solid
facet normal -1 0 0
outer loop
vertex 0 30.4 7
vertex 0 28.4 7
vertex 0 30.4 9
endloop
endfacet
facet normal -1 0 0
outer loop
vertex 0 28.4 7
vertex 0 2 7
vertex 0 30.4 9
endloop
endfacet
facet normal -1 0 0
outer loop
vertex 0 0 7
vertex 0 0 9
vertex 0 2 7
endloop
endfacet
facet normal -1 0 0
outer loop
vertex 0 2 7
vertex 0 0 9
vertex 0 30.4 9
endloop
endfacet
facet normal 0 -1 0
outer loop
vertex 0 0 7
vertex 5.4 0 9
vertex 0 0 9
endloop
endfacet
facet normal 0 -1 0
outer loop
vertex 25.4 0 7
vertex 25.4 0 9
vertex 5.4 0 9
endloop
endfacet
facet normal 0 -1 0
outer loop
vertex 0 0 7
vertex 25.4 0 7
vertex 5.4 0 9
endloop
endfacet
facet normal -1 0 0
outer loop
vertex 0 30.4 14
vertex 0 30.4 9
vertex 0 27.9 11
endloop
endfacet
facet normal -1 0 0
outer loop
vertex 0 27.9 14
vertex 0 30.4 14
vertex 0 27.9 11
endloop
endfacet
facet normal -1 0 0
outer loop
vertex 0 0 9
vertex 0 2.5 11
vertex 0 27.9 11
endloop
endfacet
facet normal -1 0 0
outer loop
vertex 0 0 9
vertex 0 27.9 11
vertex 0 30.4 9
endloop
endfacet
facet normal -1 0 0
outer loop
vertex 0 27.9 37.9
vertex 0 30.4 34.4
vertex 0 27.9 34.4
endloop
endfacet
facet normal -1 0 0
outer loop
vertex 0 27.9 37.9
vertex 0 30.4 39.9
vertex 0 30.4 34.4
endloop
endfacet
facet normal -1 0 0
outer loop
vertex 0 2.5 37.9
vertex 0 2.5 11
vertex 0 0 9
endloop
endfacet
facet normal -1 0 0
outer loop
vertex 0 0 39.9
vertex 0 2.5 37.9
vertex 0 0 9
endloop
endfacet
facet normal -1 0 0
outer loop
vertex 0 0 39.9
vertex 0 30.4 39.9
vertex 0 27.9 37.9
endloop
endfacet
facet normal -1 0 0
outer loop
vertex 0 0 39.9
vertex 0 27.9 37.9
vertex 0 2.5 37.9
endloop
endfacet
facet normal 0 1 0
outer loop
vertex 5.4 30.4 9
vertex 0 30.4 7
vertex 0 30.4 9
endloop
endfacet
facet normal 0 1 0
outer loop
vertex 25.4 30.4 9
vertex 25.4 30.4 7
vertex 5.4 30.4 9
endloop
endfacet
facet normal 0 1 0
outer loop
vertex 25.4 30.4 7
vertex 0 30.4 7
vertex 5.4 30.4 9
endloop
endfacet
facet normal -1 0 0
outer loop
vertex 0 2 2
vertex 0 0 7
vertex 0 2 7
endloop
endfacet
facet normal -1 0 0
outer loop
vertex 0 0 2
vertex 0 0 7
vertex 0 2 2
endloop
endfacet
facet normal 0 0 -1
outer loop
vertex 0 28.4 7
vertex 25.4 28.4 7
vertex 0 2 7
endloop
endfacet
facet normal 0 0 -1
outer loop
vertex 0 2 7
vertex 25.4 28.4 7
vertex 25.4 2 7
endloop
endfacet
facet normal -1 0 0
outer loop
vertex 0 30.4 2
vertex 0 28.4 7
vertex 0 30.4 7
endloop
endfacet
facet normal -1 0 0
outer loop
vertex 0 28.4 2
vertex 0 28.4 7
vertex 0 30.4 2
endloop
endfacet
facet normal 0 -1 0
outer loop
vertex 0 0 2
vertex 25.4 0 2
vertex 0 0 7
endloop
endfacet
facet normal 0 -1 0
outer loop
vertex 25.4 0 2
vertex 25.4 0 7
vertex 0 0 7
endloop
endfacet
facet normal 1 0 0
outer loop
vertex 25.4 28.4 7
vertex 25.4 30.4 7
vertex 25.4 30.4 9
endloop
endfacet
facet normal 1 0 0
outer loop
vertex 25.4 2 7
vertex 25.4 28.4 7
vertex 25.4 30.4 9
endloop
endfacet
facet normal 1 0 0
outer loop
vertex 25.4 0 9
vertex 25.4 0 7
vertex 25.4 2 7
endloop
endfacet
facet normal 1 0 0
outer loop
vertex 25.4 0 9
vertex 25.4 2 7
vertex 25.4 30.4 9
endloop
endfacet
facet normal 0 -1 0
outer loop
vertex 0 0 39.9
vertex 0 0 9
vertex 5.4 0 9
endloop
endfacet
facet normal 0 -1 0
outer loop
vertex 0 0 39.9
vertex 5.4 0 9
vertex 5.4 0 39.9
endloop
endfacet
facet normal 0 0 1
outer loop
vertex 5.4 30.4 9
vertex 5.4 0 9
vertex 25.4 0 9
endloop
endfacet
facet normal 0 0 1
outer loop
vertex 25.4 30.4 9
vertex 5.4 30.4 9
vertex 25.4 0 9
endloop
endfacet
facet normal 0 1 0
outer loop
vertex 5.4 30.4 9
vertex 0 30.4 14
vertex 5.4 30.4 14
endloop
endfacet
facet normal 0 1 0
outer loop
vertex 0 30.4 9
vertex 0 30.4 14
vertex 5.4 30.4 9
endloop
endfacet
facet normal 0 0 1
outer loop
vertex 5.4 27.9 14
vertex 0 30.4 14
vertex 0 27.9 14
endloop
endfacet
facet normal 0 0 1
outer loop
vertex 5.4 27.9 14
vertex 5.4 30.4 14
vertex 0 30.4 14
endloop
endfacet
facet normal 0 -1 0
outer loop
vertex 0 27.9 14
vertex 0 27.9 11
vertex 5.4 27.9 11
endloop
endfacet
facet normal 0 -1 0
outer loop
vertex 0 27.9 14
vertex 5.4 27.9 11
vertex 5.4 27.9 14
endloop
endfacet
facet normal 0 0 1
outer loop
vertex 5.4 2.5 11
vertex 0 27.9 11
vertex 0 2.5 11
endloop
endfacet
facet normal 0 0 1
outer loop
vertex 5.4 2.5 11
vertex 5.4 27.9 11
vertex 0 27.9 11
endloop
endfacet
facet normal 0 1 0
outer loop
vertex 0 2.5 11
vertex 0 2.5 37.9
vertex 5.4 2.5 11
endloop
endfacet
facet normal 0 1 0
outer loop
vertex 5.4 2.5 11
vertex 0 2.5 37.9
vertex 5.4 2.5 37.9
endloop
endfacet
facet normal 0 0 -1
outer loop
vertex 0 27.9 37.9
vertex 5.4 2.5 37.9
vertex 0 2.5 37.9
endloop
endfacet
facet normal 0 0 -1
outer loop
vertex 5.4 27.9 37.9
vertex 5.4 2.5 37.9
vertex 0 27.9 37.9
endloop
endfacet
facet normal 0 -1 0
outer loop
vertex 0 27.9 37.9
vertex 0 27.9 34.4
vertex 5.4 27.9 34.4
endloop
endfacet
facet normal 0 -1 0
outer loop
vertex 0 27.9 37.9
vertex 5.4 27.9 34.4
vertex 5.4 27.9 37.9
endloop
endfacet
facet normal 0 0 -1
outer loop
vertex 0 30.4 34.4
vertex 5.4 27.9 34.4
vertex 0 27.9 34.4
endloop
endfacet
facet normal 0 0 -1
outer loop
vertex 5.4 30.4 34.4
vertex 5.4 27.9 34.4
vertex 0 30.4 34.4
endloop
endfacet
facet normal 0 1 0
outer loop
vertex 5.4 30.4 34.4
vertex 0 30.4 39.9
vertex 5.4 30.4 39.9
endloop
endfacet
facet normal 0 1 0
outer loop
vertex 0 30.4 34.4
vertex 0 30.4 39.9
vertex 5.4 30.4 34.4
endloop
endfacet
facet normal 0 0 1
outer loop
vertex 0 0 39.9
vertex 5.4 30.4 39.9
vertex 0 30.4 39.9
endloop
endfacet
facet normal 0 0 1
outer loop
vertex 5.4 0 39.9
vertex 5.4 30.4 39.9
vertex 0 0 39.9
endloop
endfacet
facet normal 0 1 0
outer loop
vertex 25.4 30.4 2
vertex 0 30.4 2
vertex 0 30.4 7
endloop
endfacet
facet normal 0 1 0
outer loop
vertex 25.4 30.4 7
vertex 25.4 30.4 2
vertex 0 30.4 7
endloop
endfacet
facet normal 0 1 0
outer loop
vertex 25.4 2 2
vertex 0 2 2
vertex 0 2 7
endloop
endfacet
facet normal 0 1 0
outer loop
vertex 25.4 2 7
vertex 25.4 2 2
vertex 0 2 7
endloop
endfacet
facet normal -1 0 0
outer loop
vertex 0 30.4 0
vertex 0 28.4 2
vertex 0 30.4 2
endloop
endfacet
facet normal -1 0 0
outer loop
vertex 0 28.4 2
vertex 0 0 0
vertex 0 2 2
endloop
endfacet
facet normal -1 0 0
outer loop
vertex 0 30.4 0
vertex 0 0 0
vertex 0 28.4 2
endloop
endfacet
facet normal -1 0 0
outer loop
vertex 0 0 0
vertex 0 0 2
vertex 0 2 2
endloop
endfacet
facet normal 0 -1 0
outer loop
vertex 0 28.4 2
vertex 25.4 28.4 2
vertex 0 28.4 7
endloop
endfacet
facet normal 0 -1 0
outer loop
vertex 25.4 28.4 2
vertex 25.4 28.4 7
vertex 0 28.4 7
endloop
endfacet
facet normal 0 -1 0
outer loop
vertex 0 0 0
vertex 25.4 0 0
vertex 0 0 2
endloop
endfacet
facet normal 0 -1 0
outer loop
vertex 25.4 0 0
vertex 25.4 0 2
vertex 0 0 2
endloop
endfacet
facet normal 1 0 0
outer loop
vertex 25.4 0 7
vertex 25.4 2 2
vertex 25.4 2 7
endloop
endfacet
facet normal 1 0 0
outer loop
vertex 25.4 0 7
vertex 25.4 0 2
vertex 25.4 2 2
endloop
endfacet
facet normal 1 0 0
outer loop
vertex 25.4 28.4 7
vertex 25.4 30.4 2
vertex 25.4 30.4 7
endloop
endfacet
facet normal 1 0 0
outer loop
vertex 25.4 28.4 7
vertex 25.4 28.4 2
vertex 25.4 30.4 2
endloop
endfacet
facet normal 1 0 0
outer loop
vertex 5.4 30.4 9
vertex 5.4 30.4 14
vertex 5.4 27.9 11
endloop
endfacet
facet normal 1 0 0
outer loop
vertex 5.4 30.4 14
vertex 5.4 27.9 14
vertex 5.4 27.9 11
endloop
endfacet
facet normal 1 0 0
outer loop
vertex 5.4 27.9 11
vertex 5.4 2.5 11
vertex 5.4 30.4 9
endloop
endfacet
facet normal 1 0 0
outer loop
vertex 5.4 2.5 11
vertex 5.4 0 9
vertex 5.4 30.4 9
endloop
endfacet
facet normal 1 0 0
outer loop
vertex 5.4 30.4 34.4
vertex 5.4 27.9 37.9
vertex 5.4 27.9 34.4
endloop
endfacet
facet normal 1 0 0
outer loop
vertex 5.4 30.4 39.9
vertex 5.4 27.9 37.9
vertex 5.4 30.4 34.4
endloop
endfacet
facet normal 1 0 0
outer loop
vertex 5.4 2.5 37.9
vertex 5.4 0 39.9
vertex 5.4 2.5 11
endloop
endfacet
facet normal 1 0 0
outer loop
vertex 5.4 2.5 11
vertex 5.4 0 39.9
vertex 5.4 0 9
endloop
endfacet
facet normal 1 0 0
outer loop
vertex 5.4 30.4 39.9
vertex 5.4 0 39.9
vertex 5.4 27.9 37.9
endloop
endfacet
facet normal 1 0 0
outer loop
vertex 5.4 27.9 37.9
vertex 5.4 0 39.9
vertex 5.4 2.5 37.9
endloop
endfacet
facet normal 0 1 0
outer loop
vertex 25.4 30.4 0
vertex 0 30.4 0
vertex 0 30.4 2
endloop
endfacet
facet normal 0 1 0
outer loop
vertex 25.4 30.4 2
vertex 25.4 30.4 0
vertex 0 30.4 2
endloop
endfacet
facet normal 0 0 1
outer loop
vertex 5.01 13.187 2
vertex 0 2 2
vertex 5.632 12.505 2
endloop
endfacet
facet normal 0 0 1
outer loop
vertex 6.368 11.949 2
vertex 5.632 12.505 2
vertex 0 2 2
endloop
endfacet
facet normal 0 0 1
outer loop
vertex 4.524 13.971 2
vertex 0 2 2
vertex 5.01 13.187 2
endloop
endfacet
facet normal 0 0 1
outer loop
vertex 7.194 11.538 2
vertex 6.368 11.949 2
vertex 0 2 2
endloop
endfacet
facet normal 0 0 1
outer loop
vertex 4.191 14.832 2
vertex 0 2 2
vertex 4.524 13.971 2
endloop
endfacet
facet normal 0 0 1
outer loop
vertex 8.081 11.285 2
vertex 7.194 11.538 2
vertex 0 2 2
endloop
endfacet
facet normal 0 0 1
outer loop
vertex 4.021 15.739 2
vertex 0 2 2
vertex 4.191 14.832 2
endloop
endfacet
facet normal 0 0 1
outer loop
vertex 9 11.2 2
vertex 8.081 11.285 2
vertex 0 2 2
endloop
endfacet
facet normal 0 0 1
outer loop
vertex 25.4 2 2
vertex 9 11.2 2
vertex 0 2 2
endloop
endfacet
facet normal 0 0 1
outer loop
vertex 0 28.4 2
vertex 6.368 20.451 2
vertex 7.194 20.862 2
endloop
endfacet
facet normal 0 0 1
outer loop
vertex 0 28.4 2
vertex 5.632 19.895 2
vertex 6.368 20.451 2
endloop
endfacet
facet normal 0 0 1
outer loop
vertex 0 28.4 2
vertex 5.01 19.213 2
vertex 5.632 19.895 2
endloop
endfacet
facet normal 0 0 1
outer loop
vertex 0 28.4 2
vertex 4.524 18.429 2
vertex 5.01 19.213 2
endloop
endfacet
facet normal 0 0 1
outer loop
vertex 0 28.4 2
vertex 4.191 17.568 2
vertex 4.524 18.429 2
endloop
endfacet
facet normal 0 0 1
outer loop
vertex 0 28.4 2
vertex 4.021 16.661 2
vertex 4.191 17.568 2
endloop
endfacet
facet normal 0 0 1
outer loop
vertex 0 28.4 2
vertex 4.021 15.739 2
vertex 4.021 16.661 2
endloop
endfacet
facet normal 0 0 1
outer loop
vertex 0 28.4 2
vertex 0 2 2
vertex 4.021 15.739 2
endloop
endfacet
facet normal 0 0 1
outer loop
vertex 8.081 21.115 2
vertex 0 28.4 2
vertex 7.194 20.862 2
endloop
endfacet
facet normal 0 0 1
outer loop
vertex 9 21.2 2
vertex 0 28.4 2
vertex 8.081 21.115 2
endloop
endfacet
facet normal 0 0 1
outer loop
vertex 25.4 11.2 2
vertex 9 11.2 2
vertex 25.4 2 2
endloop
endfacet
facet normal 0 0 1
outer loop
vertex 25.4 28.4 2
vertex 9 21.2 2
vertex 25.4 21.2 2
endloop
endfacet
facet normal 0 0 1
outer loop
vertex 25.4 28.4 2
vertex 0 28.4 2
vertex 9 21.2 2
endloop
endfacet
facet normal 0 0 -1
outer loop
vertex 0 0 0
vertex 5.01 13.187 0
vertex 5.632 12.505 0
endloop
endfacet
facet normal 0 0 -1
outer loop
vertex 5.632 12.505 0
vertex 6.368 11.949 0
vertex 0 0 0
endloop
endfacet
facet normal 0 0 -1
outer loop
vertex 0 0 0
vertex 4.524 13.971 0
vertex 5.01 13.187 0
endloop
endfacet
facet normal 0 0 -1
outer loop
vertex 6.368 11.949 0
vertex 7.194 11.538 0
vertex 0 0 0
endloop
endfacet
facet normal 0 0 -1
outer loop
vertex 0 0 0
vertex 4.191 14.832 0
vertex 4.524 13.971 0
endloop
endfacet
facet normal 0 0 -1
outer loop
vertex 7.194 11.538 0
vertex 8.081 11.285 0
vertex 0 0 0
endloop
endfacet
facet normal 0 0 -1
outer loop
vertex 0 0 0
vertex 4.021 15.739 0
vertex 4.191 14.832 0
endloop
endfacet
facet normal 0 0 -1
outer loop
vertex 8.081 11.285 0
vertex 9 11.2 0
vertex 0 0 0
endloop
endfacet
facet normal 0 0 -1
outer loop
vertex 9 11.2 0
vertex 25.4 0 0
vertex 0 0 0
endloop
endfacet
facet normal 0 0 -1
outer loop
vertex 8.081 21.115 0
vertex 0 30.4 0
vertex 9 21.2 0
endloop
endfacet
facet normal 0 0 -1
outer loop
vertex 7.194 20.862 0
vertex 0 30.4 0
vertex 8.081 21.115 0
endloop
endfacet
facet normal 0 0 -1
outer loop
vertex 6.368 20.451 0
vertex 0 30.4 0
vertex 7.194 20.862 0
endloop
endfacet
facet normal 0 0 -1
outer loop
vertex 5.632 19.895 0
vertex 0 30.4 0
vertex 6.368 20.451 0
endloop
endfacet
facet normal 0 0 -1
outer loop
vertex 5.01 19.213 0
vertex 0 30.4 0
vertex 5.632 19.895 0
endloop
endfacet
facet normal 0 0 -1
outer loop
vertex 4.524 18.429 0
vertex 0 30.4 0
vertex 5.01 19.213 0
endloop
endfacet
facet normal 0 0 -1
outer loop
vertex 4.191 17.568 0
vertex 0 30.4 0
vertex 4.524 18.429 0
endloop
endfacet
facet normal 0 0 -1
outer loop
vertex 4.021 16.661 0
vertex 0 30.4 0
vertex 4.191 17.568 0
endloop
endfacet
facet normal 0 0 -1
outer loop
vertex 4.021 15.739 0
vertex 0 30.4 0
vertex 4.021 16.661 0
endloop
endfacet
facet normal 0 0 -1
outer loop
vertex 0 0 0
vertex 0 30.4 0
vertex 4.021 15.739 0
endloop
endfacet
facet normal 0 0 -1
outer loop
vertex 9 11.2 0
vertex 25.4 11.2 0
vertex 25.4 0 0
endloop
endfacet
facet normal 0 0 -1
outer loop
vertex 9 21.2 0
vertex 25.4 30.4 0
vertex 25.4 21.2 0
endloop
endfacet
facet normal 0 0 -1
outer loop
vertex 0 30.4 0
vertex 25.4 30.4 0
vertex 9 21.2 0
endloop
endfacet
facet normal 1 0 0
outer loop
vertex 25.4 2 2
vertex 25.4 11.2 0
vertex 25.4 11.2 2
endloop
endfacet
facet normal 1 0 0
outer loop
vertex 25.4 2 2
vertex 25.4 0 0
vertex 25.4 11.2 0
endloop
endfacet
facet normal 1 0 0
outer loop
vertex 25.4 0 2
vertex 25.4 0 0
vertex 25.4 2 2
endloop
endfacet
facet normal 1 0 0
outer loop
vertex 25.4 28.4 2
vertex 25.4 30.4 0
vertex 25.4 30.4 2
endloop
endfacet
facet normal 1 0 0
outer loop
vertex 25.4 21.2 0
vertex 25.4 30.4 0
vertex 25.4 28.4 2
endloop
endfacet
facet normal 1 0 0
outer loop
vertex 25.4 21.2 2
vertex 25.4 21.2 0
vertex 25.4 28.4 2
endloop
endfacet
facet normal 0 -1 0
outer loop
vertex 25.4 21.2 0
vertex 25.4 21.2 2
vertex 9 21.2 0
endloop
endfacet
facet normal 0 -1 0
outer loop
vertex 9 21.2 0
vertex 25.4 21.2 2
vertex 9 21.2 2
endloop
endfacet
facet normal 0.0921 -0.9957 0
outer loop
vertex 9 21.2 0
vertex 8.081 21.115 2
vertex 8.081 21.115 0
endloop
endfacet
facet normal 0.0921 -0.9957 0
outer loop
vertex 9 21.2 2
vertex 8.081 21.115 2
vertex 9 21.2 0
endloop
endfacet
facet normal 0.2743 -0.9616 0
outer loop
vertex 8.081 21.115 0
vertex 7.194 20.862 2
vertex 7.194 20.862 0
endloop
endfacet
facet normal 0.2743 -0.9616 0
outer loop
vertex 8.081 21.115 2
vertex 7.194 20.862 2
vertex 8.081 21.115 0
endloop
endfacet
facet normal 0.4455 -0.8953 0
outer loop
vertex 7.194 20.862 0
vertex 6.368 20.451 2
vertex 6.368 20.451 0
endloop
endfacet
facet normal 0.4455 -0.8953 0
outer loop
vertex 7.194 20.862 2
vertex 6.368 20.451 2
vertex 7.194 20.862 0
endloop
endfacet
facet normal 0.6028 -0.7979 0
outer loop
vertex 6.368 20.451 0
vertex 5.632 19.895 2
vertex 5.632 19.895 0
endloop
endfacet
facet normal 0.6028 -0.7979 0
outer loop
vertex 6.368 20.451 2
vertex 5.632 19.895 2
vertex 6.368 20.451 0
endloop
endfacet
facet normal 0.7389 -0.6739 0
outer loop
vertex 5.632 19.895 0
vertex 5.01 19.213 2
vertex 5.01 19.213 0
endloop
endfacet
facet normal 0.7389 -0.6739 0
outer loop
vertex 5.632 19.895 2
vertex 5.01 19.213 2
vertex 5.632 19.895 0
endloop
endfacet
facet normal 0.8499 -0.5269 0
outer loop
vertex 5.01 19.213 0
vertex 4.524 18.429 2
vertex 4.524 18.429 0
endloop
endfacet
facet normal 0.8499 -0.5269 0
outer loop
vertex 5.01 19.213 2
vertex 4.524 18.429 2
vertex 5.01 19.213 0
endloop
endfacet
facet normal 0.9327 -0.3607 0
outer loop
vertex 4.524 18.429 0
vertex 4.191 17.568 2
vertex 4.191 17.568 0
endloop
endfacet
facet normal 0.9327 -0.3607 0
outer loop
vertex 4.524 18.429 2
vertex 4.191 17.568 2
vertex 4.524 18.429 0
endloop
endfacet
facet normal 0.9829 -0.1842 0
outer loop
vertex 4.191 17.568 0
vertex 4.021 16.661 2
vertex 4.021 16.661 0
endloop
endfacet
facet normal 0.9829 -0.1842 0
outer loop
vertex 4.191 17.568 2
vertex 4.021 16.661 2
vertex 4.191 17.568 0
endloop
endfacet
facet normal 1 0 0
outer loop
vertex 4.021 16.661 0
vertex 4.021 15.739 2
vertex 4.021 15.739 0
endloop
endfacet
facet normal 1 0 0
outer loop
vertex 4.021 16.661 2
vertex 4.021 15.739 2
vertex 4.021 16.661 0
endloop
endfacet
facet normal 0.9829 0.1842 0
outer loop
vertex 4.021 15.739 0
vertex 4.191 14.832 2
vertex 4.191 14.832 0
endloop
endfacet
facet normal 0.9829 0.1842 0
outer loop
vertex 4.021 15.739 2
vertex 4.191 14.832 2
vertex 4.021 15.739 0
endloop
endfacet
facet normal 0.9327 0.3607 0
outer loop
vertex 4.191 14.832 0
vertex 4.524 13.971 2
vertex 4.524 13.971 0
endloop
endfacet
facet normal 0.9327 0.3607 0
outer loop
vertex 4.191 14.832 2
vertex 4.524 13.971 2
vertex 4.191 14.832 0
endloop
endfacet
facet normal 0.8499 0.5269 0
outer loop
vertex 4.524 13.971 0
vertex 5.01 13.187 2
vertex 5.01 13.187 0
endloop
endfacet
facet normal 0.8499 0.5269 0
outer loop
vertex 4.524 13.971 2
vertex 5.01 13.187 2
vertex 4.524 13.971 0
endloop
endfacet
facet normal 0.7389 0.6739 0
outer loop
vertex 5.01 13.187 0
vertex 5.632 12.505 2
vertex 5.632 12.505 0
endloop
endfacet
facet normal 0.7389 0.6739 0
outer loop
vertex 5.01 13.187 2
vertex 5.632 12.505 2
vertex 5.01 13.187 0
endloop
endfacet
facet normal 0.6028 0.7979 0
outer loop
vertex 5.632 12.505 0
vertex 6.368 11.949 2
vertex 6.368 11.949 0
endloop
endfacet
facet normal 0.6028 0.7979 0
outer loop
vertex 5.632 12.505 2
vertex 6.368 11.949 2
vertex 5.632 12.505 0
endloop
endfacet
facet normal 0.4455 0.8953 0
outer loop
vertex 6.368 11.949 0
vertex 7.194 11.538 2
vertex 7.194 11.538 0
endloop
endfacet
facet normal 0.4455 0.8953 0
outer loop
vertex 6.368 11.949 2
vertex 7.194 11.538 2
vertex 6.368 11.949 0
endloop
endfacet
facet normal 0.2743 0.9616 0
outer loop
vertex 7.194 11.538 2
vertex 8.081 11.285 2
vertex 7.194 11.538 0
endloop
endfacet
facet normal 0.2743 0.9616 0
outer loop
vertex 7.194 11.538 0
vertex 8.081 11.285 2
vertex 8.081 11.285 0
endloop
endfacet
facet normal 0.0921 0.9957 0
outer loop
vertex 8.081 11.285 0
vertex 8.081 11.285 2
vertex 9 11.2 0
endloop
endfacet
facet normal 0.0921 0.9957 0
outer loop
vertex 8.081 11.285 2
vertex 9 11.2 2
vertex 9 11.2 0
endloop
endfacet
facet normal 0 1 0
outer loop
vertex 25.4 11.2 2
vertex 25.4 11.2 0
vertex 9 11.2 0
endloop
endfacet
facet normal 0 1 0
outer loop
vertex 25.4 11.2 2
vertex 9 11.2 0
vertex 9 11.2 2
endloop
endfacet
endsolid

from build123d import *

# Parameters (mm, degrees)
BOX009_W               = 20.4
BOX009_H               = 25.4
BOX009_DEPTH           = 10
BOX008_W               = 26.9
BOX008_H               = 26
BOX008_DEPTH           = 25.4
BOX007_W               = 30.9
BOX007_H               = 5.4
BOX007_DEPTH           = 30.4
CUT004_PITCH_ANGLE     = -90
CUT004_PLACEMENT_ANGLE = 90
BOX_W                  = 25.4
BOX_H                  = 30.4
BOX_DEPTH              = 2
BOX003_W               = 25.4
BOX003_H               = 2
BOX003_DEPTH           = 5
BOX002_W               = 25.4
BOX002_H               = 2
BOX002_DEPTH           = 5
BOX004_W               = 17
BOX004_H               = 10
BOX004_DEPTH           = 4
CYLINDER_R             = 5
CYLINDER_DEPTH         = 4
BOX001_W               = 25.4
BOX001_H               = 30.4
BOX001_DEPTH           = 2


with BuildPart() as gap:
    # Box009 → Box009 (new body)
    with BuildSketch(Plane(origin=(5, 0, 0), x_dir=(1, 0, 0), z_dir=(0, 0, 1))):
        with Locations((10.2, 12.7)):
            Rectangle(BOX009_W, BOX009_H)
    extrude(amount=BOX009_DEPTH)


with BuildPart() as bar:
    # Box008 → Box008 (new body)
    with BuildSketch(Plane(origin=(2, 0, 2.5), x_dir=(1, 0, 0), z_dir=(0, 0, 1))):
        with Locations((13.45, 13)):
            Rectangle(BOX008_W, BOX008_H)
    extrude(amount=BOX008_DEPTH)


with BuildPart() as clip:
    # Box007 → Box007 (new body)
    with BuildSketch(Plane.XY):
        with Locations((15.45, 2.7)):
            Rectangle(BOX007_W, BOX007_H)
    extrude(amount=BOX007_DEPTH)

    # Cut003: cut Bar
    add(bar.part, mode=Mode.SUBTRACT)

    # Cut004: cut Gap
    add(gap.part, mode=Mode.SUBTRACT)


with BuildPart() as clip_1:
    # Cut004 pitch: moved
    add(clip.part.rotate(Axis((0, 0, 0), (0, 1, 0)), CUT004_PITCH_ANGLE))


with BuildPart() as clip_2:
    # Cut004 placement: moved
    add(clip_1.part.moved(Location((5.4, 30.4, 9))).rotate(Axis((5.4, 30.4, 9), (0, 0, 1)), CUT004_PLACEMENT_ANGLE))


with BuildPart() as top:
    # Box → Box (new body)
    with BuildSketch(Plane.XY.offset(7)):
        with Locations((12.7, 15.2)):
            Rectangle(BOX_W, BOX_H)
    extrude(amount=BOX_DEPTH)


with BuildPart() as right:
    # Box003 → Box003 (new body)
    with BuildSketch(Plane(origin=(0, 28.4, 2), x_dir=(1, 0, 0), z_dir=(0, 0, 1))):
        with Locations((12.7, 1)):
            Rectangle(BOX003_W, BOX003_H)
    extrude(amount=BOX003_DEPTH)


with BuildPart() as left:
    # Box002 → Box002 (new body)
    with BuildSketch(Plane.XY.offset(2)):
        with Locations((12.7, 1)):
            Rectangle(BOX002_W, BOX002_H)
    extrude(amount=BOX002_DEPTH)


with BuildPart() as cube:
    # Box004 → Box004 (new body)
    with BuildSketch(Plane(origin=(9, 11.2, 9), x_dir=(1, 0, 0), z_dir=(0, 0, 1))):
        with Locations((8.5, 5)):
            Rectangle(BOX004_W, BOX004_H)
    extrude(amount=BOX004_DEPTH)


with BuildPart() as cylinder:
    # Cylinder → Cylinder (new body)
    with BuildSketch(Plane(origin=(9, 16.2, 9), x_dir=(1, 0, 0), z_dir=(0, 0, 1))):
        Circle(CYLINDER_R)
    extrude(amount=CYLINDER_DEPTH)


with BuildPart() as fusion003:
    # Box001 → Box001 (new body)
    with BuildSketch(Plane.XY.offset(10)):
        with Locations((12.7, 15.2)):
            Rectangle(BOX001_W, BOX001_H)
    extrude(amount=BOX001_DEPTH)

    # Cut: cut Cylinder
    add(cylinder.part, mode=Mode.SUBTRACT)

    # Cut001: cut Cube
    add(cube.part, mode=Mode.SUBTRACT)


with BuildPart() as fusion003_1:
    # Cut001 placement: moved
    add(fusion003.part.moved(Location((0, 0, -10))))

    # Fusion: union Left
    add(left.part)

    # Fusion001: union Right
    add(right.part)

    # Fusion002: union Top
    add(top.part)

    # Fusion003: union Clip
    add(clip_2.part)


solid = fusion003_1.part
